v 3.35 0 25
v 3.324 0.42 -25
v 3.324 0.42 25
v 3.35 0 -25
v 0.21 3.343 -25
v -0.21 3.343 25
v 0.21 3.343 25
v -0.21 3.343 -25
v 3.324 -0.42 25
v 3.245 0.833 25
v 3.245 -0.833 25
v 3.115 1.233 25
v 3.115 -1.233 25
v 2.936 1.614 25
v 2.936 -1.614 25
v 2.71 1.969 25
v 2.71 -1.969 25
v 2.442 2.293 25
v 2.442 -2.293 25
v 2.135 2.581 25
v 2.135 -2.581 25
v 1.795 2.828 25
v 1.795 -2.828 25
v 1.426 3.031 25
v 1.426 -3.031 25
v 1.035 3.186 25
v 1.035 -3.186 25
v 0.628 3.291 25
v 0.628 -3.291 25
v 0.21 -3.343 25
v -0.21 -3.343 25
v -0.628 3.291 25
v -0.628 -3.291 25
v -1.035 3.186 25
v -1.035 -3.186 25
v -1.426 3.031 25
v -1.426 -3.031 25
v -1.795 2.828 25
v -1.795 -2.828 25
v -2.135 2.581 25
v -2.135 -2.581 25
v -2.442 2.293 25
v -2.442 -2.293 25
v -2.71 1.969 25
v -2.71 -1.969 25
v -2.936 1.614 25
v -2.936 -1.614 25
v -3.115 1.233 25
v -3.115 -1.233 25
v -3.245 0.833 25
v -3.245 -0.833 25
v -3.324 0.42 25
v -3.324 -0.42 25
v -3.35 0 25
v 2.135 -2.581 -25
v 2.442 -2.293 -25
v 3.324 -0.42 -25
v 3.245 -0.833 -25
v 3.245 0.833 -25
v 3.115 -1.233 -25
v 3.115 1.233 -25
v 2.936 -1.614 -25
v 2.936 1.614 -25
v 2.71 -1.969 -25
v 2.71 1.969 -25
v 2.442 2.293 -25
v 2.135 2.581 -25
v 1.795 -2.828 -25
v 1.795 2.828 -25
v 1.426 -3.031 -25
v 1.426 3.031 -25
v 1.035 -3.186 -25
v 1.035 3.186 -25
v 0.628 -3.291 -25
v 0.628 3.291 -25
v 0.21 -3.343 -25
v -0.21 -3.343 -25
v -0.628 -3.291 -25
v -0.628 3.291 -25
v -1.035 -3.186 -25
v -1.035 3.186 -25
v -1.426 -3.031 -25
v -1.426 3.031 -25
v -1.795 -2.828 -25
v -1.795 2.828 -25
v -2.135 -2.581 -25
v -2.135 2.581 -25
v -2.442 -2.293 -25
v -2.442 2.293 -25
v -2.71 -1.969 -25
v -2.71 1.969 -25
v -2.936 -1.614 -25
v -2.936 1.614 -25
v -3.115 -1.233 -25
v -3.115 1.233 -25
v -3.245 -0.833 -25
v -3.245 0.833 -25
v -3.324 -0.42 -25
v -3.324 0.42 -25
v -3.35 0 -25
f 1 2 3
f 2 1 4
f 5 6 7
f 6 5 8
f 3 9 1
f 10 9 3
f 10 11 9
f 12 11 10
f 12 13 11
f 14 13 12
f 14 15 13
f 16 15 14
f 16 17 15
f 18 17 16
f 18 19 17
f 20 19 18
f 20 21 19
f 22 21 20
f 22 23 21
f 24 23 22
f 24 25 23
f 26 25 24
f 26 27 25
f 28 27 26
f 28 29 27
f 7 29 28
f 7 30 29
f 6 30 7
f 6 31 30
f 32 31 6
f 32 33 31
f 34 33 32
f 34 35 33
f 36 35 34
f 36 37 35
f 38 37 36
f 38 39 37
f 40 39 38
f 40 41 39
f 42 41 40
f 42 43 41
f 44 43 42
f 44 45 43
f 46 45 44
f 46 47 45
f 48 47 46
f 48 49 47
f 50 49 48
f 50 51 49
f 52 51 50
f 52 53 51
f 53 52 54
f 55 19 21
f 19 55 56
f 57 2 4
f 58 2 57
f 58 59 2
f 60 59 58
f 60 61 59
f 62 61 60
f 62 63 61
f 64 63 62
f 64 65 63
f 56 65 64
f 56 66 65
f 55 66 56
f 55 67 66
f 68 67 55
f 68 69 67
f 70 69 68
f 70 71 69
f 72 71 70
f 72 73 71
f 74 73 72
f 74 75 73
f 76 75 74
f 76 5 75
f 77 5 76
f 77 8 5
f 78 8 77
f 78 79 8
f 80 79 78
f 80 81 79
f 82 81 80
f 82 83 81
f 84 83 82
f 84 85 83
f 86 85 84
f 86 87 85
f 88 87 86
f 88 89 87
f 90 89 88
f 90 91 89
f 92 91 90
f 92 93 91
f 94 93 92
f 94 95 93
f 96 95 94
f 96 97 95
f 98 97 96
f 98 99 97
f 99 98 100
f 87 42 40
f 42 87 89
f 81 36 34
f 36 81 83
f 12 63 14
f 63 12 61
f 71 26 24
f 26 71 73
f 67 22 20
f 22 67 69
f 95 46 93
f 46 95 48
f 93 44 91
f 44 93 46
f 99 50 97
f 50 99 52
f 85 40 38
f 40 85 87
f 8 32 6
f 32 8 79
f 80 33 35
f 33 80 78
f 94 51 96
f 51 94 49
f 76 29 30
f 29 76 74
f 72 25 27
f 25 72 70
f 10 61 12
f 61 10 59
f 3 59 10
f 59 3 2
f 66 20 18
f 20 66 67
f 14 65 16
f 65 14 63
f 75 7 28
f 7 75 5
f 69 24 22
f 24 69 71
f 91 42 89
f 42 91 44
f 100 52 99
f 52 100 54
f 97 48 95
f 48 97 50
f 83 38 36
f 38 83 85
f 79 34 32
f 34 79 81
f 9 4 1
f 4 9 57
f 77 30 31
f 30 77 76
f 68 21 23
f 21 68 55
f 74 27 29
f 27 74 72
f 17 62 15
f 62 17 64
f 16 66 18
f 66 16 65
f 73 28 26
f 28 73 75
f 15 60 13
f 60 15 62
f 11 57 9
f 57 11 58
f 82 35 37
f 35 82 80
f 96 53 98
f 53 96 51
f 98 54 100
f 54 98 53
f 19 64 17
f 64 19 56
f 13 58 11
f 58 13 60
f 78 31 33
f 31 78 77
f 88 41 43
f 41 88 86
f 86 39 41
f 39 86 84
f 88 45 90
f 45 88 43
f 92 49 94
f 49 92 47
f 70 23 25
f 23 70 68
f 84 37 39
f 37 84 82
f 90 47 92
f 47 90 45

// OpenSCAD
$fn = 50;


difference() {
	union() {
		translate(v = [0, 0, -25.0000000000]) {
			cylinder(h = 50, r = 3.3500000000);
		}
	}
	union() {
		translate(v = [0, 0, -100.0000000000]) {
			cylinder(h = 200, r = 0);
		}
	}
}
